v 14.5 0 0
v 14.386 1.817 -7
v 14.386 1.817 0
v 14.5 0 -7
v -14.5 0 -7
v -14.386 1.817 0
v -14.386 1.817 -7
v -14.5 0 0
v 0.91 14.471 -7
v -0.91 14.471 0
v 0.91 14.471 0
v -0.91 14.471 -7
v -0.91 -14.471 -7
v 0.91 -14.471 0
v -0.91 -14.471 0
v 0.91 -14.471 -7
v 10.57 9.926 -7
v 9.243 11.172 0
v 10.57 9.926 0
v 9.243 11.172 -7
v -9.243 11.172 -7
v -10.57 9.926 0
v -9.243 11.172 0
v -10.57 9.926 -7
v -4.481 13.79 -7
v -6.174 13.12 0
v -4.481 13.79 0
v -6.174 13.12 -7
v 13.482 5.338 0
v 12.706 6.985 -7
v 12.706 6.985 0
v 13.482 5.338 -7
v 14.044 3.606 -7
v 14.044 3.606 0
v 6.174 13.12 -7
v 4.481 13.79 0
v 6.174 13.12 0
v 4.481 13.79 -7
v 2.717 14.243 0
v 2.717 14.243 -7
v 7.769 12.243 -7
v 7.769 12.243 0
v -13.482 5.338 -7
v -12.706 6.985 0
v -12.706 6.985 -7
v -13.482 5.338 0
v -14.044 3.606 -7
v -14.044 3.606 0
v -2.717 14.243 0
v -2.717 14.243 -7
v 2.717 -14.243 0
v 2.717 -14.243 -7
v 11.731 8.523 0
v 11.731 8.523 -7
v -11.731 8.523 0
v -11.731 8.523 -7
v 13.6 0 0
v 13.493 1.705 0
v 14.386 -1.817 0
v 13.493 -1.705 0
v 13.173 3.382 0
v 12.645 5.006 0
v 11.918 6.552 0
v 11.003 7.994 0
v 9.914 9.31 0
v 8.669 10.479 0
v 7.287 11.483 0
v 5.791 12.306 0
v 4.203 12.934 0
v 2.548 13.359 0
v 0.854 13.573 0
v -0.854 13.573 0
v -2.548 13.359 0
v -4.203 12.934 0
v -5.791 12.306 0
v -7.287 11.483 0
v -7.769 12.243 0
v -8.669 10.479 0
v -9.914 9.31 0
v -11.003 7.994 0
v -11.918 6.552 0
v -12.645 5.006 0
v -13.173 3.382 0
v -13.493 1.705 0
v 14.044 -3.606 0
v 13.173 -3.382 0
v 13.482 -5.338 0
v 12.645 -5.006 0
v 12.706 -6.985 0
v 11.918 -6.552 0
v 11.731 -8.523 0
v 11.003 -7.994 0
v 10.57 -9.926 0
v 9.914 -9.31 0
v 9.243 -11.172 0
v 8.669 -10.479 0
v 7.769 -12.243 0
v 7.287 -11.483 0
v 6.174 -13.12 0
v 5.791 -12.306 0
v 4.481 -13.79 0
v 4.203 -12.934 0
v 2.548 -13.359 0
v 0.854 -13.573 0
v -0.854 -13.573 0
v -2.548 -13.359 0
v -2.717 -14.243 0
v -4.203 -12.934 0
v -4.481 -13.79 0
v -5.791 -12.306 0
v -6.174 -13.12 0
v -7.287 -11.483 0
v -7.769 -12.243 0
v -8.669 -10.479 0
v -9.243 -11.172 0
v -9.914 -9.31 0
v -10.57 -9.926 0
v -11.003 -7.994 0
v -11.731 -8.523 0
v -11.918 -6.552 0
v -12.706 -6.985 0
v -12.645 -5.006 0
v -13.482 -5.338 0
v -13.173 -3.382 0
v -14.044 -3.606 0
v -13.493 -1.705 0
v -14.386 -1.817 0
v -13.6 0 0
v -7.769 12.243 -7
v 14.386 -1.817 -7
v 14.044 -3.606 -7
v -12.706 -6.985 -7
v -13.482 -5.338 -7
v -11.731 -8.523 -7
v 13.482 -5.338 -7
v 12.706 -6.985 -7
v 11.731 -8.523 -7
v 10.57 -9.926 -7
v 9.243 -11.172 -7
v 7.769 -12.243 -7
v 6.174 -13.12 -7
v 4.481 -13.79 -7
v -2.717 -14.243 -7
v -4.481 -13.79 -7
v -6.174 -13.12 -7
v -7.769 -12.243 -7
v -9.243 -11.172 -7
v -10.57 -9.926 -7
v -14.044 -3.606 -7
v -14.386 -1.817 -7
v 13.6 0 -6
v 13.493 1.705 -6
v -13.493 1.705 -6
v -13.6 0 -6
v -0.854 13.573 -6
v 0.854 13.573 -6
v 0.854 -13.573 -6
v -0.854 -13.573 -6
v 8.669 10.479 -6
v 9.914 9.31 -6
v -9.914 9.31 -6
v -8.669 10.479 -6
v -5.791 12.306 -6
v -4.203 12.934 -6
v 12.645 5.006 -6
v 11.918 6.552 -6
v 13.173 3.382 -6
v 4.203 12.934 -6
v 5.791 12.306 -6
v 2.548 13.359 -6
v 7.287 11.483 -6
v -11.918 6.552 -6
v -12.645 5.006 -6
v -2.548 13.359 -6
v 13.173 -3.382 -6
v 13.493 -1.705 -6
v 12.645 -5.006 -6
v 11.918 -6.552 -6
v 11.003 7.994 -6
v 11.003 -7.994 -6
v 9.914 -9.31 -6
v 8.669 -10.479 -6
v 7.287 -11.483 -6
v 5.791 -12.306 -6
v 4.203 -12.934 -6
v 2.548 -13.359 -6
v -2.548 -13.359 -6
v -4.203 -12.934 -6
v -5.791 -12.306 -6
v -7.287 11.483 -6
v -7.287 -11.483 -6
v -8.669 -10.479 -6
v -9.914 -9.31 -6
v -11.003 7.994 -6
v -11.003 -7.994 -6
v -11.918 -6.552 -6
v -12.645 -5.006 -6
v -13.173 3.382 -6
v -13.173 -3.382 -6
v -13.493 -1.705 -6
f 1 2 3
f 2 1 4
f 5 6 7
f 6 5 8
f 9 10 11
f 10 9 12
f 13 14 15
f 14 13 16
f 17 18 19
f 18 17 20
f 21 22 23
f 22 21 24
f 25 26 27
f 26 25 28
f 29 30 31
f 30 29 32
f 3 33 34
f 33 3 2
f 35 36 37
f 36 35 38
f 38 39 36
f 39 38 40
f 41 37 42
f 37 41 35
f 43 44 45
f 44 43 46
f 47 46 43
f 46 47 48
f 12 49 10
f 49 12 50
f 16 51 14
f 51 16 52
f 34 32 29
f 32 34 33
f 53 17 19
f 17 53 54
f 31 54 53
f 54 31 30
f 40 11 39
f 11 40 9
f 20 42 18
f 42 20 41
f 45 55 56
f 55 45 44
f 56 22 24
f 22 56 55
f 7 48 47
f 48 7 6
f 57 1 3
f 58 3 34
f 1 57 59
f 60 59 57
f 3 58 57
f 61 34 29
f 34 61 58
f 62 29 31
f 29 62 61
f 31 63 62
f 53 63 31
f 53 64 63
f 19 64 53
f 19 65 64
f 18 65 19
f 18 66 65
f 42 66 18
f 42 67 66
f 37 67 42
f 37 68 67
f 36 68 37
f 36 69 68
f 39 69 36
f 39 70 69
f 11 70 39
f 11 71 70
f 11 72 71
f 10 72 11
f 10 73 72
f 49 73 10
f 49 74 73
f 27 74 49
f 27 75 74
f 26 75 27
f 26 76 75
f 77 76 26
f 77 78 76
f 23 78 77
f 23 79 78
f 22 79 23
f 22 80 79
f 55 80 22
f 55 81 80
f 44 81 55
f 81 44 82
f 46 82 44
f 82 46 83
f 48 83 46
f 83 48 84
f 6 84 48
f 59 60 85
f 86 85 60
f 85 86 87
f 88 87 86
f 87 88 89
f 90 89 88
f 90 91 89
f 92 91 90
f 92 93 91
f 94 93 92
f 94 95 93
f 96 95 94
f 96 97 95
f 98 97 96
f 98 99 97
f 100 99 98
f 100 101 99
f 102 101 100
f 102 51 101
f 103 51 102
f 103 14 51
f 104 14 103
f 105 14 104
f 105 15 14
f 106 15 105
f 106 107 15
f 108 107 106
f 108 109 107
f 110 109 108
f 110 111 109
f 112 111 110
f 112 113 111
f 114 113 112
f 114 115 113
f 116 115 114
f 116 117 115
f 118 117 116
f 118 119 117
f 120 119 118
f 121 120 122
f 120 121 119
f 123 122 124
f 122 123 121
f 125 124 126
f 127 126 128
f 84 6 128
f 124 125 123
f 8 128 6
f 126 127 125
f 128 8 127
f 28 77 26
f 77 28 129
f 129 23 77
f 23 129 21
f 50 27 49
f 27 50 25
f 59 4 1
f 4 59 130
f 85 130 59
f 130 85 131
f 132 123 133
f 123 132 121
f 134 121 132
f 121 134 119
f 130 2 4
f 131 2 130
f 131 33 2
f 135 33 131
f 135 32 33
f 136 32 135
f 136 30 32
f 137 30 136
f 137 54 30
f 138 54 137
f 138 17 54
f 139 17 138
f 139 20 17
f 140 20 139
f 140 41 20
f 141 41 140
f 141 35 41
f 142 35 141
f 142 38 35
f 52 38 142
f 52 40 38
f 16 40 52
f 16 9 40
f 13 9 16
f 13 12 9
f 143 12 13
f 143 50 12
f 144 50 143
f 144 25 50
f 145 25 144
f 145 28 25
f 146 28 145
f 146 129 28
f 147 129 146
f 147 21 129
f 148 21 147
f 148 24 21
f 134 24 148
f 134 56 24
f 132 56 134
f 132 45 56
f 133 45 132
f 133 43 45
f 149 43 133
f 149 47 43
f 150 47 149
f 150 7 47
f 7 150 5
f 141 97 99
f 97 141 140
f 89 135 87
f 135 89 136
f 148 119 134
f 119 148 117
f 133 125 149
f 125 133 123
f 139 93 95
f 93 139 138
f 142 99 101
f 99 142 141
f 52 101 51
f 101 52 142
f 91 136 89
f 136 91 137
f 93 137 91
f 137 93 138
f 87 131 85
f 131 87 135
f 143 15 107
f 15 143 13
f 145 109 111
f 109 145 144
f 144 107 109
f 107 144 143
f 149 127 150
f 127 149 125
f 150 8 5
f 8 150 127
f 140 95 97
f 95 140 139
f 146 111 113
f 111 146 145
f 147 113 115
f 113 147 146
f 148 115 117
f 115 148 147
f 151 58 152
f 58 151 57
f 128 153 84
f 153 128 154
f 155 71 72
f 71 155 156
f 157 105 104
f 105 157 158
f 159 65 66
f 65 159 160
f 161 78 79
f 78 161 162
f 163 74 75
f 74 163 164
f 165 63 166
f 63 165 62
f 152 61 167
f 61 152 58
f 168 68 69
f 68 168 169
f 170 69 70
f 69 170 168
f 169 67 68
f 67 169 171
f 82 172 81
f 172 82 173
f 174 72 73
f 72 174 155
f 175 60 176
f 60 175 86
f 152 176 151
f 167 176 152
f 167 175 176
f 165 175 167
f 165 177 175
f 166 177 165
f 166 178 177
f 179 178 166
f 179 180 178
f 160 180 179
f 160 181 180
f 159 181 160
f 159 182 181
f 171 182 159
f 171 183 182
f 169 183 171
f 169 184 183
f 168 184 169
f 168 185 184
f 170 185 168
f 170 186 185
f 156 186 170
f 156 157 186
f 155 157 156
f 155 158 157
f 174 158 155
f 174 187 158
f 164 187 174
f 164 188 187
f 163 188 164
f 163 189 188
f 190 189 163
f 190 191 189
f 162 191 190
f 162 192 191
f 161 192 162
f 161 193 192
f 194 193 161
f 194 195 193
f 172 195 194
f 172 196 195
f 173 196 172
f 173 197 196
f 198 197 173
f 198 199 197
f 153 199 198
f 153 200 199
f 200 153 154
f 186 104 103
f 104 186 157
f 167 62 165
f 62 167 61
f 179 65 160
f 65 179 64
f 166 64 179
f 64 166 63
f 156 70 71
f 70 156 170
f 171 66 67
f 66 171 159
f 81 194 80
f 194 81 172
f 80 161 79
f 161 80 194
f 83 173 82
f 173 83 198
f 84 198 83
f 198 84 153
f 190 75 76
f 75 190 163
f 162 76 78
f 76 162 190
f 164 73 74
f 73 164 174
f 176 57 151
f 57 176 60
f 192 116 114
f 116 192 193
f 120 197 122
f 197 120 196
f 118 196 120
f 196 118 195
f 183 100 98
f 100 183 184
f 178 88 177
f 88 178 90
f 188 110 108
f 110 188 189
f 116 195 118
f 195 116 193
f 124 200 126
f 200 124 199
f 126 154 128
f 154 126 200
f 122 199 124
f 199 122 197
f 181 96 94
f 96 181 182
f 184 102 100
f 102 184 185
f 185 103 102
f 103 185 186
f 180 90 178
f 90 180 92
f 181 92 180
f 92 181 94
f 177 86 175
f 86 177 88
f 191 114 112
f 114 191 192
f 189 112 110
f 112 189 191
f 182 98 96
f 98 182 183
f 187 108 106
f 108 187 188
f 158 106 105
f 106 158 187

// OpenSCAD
$fn = 50;


difference() {
	union() {
		translate(v = [0, 0, -7.0000000000]) {
			cylinder(h = 7, r = 14.5000000000);
		}
	}
	union() {
		#translate(v = [0, 0, -6.0000000000]) {
			cylinder(h = 6, r = 13.6000000000);
		}
	}
}
